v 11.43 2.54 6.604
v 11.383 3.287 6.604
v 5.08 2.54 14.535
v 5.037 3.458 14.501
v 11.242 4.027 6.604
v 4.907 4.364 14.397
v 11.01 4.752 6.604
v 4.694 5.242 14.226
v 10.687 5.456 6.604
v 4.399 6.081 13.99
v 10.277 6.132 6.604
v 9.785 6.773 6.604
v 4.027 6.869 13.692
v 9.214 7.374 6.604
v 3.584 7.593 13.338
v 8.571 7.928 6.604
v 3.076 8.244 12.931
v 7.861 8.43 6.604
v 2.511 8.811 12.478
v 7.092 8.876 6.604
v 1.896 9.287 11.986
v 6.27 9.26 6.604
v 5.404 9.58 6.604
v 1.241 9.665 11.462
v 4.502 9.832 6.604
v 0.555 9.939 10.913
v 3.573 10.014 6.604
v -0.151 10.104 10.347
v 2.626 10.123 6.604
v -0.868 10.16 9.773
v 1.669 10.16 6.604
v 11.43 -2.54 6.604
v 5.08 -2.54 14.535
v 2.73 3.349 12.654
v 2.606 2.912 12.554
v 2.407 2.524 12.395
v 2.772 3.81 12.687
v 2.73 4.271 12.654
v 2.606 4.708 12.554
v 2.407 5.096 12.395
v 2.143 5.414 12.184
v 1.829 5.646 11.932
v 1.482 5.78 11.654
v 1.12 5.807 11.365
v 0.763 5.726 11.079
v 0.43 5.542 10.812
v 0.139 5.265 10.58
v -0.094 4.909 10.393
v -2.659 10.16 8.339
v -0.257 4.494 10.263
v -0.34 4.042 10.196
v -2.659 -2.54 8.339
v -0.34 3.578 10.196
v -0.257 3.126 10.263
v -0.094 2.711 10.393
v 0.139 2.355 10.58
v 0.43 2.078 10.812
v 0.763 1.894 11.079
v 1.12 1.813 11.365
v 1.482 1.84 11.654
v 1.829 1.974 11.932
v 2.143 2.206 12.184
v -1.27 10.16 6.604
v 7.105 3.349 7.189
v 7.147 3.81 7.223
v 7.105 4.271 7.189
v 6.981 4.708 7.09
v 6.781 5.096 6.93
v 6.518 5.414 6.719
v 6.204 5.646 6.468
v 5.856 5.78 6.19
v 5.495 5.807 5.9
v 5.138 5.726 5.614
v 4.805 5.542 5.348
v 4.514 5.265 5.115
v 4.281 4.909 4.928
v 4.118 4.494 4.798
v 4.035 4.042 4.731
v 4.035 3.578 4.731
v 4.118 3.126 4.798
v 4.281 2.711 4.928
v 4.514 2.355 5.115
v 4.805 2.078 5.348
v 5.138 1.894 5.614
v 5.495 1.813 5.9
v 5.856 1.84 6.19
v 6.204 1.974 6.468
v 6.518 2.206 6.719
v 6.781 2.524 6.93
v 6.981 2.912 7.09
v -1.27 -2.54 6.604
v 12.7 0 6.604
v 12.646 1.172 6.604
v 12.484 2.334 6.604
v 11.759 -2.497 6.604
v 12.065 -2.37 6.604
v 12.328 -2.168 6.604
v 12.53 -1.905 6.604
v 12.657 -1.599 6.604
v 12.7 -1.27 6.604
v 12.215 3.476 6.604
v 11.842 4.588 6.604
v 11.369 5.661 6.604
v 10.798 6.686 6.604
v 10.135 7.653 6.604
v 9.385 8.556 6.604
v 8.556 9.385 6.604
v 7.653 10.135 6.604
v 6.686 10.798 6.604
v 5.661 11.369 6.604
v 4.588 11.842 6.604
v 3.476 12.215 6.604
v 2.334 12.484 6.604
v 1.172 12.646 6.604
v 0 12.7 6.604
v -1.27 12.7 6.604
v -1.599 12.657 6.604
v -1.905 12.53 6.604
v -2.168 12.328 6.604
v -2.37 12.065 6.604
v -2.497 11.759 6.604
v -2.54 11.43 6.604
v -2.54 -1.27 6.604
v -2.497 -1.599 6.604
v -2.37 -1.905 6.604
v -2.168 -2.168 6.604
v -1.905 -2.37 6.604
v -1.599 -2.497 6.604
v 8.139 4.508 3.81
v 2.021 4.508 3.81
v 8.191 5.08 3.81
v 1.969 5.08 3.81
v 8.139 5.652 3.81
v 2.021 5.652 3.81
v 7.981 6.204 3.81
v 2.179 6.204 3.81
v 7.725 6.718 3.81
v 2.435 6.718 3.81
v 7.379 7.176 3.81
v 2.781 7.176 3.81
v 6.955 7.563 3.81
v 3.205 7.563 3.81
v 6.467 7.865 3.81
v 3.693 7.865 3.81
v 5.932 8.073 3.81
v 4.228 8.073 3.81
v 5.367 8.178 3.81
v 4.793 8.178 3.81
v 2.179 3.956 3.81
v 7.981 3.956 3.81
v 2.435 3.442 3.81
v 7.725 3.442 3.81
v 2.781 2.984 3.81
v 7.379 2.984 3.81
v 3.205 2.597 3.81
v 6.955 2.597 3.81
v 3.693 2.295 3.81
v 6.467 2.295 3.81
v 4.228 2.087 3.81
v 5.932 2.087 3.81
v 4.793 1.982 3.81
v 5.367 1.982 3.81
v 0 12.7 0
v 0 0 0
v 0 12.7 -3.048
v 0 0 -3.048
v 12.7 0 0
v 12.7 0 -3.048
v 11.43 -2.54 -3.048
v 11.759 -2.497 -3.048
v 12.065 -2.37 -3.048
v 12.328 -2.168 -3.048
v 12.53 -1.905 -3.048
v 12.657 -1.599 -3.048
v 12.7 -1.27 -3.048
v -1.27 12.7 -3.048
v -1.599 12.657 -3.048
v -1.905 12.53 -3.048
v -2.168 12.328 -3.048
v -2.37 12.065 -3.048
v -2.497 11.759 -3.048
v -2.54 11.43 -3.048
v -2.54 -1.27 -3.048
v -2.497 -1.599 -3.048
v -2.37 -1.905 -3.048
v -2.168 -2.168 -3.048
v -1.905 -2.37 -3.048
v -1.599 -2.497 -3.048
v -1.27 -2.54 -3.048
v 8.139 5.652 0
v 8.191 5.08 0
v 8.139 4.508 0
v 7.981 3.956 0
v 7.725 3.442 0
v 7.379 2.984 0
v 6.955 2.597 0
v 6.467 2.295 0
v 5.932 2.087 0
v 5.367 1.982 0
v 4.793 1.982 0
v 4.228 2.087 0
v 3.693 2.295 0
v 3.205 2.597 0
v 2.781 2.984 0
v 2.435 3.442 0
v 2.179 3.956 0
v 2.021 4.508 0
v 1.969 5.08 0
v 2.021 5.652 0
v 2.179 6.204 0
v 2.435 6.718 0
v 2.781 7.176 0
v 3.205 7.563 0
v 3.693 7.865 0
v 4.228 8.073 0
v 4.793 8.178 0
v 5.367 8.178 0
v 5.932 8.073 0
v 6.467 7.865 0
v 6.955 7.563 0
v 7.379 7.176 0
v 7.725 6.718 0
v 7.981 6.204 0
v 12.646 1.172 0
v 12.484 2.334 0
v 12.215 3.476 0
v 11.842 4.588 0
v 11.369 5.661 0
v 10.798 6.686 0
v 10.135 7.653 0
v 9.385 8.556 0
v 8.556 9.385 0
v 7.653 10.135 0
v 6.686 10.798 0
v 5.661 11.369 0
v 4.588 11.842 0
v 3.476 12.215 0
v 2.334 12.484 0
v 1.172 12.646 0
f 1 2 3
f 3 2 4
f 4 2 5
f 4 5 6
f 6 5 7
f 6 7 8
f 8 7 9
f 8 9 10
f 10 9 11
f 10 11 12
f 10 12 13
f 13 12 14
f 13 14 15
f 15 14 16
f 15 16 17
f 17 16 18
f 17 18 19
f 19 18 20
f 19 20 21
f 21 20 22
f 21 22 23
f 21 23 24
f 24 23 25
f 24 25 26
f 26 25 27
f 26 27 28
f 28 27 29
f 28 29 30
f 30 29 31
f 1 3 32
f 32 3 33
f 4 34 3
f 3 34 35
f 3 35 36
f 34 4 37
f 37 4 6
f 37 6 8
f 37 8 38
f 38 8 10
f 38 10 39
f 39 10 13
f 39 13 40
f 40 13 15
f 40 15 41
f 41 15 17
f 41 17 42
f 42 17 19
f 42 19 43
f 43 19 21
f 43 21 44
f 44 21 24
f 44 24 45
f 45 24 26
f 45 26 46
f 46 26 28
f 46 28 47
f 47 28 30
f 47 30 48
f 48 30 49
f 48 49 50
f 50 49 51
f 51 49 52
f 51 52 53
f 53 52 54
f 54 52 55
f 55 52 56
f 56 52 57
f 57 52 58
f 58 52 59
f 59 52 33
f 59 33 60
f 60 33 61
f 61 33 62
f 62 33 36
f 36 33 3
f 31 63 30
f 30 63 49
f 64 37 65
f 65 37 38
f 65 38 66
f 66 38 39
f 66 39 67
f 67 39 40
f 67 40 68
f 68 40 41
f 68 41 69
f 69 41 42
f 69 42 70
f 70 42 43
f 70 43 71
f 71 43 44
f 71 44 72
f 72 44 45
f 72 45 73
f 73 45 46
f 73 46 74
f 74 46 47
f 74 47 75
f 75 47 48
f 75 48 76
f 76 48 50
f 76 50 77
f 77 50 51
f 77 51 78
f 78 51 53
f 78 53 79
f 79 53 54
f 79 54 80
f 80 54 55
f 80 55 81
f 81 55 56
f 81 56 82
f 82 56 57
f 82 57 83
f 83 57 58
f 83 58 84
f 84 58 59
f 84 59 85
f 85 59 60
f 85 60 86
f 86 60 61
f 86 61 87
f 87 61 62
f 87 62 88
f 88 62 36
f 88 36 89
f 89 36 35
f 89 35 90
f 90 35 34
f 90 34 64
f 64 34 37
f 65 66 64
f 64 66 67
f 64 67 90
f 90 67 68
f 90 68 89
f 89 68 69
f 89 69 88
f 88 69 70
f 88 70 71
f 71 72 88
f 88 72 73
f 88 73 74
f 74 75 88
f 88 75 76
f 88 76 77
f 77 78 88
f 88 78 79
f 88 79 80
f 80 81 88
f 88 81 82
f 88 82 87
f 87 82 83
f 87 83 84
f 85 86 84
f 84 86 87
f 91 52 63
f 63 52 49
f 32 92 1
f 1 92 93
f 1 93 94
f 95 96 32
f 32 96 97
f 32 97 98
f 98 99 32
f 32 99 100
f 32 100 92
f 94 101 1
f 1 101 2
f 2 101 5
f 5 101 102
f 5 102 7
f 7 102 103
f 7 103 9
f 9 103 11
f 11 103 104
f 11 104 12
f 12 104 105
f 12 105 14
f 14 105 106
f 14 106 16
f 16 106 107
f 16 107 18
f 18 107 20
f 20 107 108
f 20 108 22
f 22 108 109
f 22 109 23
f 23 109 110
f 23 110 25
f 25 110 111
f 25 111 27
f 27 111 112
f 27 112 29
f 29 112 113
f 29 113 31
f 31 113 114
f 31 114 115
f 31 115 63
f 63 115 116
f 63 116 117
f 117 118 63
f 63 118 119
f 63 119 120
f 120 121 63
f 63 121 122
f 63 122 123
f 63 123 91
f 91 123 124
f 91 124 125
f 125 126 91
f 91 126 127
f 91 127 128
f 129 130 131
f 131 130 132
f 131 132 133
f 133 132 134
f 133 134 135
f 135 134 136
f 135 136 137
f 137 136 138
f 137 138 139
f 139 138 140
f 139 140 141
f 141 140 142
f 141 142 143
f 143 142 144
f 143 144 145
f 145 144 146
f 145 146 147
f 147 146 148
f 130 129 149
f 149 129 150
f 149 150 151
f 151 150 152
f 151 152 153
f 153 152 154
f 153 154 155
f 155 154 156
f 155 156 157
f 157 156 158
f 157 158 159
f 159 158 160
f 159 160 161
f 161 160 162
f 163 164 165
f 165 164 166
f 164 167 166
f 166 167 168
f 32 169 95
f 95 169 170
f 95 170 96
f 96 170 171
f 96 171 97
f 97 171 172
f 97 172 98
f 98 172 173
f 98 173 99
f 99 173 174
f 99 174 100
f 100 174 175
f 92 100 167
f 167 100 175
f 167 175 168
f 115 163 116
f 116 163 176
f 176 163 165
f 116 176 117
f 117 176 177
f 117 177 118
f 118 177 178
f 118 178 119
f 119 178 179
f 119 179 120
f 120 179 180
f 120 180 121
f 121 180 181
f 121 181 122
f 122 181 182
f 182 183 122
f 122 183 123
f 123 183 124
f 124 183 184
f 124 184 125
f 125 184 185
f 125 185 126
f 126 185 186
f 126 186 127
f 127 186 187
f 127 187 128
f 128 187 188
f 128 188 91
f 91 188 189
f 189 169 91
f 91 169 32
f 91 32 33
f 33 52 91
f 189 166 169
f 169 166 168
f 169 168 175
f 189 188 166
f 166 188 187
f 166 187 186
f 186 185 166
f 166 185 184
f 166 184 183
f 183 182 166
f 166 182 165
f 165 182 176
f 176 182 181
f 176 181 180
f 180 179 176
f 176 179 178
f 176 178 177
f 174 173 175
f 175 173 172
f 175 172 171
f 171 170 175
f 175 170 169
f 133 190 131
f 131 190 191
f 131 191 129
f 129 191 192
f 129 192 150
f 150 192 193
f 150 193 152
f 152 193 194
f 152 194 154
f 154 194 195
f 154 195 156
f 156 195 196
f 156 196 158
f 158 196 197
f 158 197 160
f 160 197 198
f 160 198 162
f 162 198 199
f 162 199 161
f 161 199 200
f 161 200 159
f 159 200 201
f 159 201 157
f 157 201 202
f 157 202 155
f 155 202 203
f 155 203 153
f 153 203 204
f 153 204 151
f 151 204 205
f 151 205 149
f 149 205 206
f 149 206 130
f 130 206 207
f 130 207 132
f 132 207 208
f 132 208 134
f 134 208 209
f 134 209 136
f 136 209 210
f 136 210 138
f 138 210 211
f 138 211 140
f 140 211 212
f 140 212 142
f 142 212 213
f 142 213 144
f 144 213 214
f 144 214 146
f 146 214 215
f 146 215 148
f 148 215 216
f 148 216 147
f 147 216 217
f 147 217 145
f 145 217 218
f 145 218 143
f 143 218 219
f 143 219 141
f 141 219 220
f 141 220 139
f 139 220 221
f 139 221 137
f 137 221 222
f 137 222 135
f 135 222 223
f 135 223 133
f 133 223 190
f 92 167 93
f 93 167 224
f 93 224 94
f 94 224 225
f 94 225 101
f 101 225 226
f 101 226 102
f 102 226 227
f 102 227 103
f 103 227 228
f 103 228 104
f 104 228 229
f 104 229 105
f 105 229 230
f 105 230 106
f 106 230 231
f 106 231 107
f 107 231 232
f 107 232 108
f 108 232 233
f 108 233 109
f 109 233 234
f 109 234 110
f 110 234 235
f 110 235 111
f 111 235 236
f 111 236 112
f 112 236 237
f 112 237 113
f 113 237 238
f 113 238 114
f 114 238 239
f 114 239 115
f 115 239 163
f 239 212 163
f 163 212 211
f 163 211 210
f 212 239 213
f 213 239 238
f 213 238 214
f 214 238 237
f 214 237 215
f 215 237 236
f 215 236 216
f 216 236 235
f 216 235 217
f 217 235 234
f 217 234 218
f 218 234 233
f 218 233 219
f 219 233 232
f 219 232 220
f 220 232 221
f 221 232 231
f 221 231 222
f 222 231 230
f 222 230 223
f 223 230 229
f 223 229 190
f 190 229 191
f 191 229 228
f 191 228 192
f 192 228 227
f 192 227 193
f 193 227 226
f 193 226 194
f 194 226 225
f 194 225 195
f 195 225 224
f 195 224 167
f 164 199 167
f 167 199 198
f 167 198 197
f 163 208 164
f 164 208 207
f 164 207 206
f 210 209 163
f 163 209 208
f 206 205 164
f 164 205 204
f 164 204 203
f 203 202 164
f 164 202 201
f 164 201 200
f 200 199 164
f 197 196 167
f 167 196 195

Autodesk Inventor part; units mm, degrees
ref_plane "YZ Plane" through (0, 0, 0) normal (1, 0, 0) x (0, 1, 0)
ref_plane "XZ Plane" through (0, 0, 0) normal (0, 1, 0) x (-1, 0, 0)
ref_plane "XY Plane" through (0, 0, 0) normal (0, 0, 1) x (1, 0, 0)
sketch "Sketch2" plane through (0, 0, 0) normal (0, 0, 1) x (1, 0, 0)
  line L0 (0, 0) -> (12.7, 0)
  line L1 (0, 0) -> (0, 12.7)
  arc A0 (12.7, 0) -> (0, 12.7) centre (0, 0) ccw
  circle A1 centre (5.08, 5.08) radius 3.1115
  dimension "d4" = 12.7
  dimension "d5" = 6.223
  dimension "d6" = 5.08
  dimension "d7" = 5.08
extrude "Extrusion1" add sketch "Sketch2" along normal blind 3.81
sketch "Sketch4" plane through (0, 0, 0) normal (0, 0, -1) x (-1, 0, 0)
  arc A0 (0, 12.7) -> (-12.7, 0) centre (0, 0) ccw projected
  line L0 (-12.7, 0) -> (-12.7, -1.27)
  line L1 (0, 12.7) -> (1.27, 12.7)
  line L2 (2.54, 11.43) -> (2.54, -1.27)
  line L3 (1.27, -2.54) -> (-11.43, -2.54)
  line L4 (0, 12.7) -> (0, 0)
  line L5 (0, 0) -> (-12.7, 0)
  arc A1 (-12.7, -1.27) -> (-11.43, -2.54) centre (-11.43, -1.27) ccw
  arc A2 (1.27, -2.54) -> (2.54, -1.27) centre (1.27, -1.27) ccw
  arc A3 (2.54, 11.43) -> (1.27, 12.7) centre (1.27, 11.43) ccw
  point P0 (-12.7, -2.54)
  point P1 (2.54, 12.7)
  dimension "d10" = 2.54
  dimension "d11" = 2.54
  dimension "d12" = 1.27
extrude "Extrusion2" add sketch "Sketch4" along normal blind 3.048 and the other way blind 3.81 contours L1 A3 L2 A2 L3 A1 L0 L5 L4
sketch "Sketch5" plane through (0, 0, 3.81) normal (0, 0, 1) x (1, 0, 0)
  line L0 (-1.27, -2.54) -> (11.43, -2.54)
  line L1 (-2.54, -1.27) -> (-2.54, 11.43)
  arc A0 (12.7, 0) -> (0, 12.7) centre (0, 0) ccw
  line L2 (0, 12.7) -> (-1.27, 12.7)
  line L3 (12.7, 0) -> (12.7, -1.27)
  arc A1 (-1.27, 12.7) -> (-2.54, 11.43) centre (-1.27, 11.43) ccw
  arc A2 (-2.54, -1.27) -> (-1.27, -2.54) centre (-1.27, -1.27) ccw
  arc A3 (11.43, -2.54) -> (12.7, -1.27) centre (11.43, -1.27) ccw
  line L4 (0, 12.7) -> (0, 0) projected
  line L5 (0, 0) -> (12.7, 0) projected
  circle A4 centre (5.08, 5.08) radius 3.1115
  dimension "d17" = 1.27
  dimension "d18" = 2.54
  dimension "d19" = 2.54
extrude "Extrusion3" add sketch "Sketch5" along normal blind 2.794 contours A2 L1 A1 L2 L4 L5 L3 A3 L0 | L5 L4 A0 | A4
sketch "Sketch7" plane through (-1.27, -2.54, -3.048) normal (0, -1, 0) x (1, 0, 0)
  line L0 (12.7, 0) -> (12.7, 9.652) projected
  line L1 (12.7, 9.652) -> (6.3503, 17.5834)
  line L2 (0, 9.652) -> (0, 0) projected
  line L3 (0, 9.652) -> (-1.3892, 11.3873)
  line L4 (6.3503, 17.5834) -> (-1.3892, 11.3873)
  line L5 (12.7, 9.652) -> (0, 9.652)
  point P0 (1.27, 3.048)
  dimension "d22" = 141.32
  dimension "d23" = 141.32
  dimension "d24" = 10.16
extrude "Extrusion4" add sketch "Sketch7" against normal blind 12.7
sketch "Sketch8" plane through (5.0803, -2.54, 14.5354) normal (-0.6249702, 0, 0.7806486) x (0.7806486, 0, 0.6249702)
  line L0 (0, 0) -> (-9.9142, 0) construction
  line L1 (-9.9142, 12.7) -> (0, 12.7) construction
  line L2 (0, 0) -> (-9.9142, 12.7) construction
  line L3 (-9.9142, 0) -> (-9.9142, 12.7) construction
  line L4 (-9.9142, 0) -> (-1.8469, 10.3341) construction
  circle A0 centre (-4.9571, 6.35) radius 2
  point P0 (-13.0501, 2.54)
  dimension "d27" = 4
extrude "Extrusion5" cut sketch "Sketch8" against normal blind 7
fillet "Fillet1" radius 7.62 1 edges at (8.2552, 10.16, 10.5697)
equation "\"d27\" = m3_heat_set_insert"
equation "\"d28\" = m3_heat_set_depth"
equation "\"m3_heat_set_insert\" = 4"
equation "\"m3_clearance\" = 3.4"
equation "\"m3_heat_set_depth\" = 7"
equation "\"robot_diameter\" = 354"
equation "\"hardboard_thickness\" = 5"
properties part number "display_bottom_support_left"
